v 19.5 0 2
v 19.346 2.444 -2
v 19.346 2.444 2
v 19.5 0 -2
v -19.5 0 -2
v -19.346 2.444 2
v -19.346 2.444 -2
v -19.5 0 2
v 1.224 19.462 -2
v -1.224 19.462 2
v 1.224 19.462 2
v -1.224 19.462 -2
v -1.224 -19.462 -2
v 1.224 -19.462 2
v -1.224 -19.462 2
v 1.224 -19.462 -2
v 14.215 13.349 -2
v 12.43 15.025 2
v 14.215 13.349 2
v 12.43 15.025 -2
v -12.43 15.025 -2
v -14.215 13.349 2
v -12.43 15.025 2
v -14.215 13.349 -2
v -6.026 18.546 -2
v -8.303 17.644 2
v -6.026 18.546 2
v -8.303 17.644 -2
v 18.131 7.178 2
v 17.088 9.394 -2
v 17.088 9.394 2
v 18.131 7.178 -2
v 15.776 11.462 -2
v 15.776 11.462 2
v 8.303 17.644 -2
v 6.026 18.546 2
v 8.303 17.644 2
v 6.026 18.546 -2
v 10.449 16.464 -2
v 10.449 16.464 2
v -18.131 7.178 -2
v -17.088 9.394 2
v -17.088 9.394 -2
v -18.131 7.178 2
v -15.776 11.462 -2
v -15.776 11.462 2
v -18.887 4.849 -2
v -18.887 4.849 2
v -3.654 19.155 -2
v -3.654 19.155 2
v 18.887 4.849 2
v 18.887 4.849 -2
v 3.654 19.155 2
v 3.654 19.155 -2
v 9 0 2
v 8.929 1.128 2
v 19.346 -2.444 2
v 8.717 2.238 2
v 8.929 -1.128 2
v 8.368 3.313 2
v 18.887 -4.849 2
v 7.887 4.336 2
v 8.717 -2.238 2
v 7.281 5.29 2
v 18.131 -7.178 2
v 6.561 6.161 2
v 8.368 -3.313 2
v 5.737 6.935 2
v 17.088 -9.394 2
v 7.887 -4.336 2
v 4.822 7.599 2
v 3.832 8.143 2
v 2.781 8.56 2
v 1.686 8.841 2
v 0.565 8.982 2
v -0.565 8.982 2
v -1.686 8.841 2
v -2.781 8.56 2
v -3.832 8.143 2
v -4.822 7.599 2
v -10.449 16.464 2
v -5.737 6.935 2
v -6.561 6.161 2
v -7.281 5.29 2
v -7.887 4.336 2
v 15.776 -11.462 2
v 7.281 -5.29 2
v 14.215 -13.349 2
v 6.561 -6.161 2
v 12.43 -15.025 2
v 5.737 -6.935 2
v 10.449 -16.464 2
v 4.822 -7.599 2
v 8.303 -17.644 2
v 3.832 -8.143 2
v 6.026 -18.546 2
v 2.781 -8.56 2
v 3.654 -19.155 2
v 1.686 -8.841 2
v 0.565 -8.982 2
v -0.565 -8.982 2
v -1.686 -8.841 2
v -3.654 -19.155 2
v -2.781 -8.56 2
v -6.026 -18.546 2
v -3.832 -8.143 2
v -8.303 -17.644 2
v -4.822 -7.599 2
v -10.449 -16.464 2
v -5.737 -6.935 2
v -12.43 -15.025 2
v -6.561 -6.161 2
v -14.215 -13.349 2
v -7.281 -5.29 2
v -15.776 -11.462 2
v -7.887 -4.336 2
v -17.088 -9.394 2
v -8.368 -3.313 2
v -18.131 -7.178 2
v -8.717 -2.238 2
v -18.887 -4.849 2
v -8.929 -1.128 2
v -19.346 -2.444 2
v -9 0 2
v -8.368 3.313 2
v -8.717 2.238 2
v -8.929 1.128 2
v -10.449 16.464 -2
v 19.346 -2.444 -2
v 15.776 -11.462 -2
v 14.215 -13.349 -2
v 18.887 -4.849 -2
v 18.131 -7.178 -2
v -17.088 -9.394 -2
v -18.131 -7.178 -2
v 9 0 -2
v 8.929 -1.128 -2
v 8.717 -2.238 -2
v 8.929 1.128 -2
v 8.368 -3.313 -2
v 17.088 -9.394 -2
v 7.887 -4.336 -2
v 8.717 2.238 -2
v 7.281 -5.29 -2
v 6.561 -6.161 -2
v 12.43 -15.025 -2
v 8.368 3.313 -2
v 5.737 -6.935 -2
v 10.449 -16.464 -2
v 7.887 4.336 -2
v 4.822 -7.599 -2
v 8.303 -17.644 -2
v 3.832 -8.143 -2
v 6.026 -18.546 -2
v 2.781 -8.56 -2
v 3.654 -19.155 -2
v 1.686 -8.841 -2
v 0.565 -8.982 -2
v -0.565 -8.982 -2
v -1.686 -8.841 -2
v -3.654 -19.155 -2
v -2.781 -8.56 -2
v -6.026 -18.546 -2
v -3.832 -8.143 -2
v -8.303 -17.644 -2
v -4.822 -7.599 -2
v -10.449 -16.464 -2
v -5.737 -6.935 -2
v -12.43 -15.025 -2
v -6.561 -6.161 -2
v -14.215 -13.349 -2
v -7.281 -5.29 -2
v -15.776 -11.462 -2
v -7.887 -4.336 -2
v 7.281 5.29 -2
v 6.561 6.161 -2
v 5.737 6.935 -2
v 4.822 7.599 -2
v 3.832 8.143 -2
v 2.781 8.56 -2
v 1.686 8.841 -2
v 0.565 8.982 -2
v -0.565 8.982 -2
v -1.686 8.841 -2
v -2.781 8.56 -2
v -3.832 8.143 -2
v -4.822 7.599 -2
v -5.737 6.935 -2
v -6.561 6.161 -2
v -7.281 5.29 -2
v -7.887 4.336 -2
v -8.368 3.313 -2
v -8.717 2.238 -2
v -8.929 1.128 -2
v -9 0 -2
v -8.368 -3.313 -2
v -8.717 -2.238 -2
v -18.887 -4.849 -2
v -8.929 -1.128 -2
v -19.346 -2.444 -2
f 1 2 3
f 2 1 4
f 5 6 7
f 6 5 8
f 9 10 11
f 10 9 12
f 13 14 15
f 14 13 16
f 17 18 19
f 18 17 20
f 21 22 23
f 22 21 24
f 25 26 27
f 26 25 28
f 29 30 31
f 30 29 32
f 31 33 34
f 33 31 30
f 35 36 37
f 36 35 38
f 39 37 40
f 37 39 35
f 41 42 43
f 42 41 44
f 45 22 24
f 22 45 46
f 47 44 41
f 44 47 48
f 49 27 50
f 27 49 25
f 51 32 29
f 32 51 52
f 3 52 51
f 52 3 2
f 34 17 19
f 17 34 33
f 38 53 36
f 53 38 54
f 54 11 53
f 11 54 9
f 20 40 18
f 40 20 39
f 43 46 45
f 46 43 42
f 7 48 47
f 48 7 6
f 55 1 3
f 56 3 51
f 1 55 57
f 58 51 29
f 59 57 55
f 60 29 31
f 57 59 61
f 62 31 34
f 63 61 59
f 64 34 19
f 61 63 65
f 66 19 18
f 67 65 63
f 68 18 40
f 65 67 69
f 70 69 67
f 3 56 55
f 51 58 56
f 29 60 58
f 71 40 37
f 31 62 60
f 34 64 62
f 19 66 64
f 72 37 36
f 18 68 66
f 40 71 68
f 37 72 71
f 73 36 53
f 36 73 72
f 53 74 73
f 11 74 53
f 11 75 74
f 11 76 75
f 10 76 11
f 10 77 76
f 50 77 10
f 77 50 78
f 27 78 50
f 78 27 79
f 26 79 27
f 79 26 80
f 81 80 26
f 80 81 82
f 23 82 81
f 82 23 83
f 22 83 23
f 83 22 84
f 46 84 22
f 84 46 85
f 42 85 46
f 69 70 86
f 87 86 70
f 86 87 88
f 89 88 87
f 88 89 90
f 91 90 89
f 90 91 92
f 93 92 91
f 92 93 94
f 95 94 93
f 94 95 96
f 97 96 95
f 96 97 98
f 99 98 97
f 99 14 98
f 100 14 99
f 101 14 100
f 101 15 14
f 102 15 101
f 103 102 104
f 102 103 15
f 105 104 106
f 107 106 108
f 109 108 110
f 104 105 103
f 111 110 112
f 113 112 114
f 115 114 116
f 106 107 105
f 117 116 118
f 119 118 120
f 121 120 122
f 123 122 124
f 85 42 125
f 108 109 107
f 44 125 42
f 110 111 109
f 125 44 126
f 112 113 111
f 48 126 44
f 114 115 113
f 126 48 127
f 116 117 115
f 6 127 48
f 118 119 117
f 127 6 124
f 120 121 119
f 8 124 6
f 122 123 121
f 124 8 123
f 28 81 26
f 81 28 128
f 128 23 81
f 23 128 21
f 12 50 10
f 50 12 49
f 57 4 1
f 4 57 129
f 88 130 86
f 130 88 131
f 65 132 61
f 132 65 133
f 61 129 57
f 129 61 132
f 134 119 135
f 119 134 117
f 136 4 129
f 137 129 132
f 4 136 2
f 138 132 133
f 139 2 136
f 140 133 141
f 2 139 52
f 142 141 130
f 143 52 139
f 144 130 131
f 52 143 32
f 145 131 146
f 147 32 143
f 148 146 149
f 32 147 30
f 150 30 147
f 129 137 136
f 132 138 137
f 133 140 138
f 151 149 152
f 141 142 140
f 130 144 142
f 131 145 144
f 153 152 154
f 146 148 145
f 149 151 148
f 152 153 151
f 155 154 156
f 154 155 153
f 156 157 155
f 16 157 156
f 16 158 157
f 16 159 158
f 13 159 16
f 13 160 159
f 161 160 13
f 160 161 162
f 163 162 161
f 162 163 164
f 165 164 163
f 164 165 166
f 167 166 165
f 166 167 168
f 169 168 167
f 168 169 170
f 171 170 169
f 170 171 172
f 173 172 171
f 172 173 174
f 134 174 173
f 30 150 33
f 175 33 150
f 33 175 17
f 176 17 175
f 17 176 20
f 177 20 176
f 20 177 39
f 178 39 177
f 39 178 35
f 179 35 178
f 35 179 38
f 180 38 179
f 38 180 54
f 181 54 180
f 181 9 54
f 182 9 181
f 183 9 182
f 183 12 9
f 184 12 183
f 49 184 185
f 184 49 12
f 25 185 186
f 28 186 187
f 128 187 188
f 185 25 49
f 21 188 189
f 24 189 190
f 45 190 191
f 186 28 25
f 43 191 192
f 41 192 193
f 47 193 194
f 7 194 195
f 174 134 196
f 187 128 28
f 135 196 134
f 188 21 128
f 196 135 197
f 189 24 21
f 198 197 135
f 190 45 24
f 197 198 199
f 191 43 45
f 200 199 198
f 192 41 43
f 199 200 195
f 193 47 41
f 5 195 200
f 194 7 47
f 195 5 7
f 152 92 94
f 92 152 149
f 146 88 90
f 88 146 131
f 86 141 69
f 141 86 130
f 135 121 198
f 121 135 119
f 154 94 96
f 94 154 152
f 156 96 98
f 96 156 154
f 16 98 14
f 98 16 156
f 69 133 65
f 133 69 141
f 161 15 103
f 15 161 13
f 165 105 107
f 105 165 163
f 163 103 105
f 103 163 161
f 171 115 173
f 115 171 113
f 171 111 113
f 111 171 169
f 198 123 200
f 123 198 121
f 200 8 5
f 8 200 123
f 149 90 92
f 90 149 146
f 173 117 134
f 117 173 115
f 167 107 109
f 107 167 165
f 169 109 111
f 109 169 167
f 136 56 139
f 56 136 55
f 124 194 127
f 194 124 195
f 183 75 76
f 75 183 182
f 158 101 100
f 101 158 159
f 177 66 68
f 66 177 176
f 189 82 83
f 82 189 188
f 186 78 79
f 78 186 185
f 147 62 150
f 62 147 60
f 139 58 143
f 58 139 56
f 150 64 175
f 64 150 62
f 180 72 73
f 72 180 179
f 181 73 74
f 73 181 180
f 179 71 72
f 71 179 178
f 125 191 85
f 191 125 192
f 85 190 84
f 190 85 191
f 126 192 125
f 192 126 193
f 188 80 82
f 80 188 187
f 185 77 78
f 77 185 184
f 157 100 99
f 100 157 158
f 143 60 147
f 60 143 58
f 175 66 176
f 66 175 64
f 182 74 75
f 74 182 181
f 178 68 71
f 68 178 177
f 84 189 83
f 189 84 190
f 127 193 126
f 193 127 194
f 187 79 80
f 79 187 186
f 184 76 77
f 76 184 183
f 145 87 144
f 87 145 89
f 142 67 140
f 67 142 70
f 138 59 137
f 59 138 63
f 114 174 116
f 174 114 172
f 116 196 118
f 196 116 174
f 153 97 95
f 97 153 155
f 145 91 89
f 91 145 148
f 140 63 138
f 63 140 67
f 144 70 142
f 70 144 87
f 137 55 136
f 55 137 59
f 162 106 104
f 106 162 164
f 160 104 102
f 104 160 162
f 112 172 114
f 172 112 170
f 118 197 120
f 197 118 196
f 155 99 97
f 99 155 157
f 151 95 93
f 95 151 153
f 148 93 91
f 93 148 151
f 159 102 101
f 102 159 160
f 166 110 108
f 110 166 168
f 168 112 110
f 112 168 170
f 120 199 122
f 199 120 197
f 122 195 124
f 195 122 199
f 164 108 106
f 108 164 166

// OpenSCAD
$fn = 50;


difference() {
	union() {
		translate(v = [0, 0, -2.0000000000]) {
			cylinder(h = 4, r = 19.5000000000);
		}
	}
	union() {
		translate(v = [0, 0, -100.0000000000]) {
			cylinder(h = 200, r = 9);
		}
	}
}
